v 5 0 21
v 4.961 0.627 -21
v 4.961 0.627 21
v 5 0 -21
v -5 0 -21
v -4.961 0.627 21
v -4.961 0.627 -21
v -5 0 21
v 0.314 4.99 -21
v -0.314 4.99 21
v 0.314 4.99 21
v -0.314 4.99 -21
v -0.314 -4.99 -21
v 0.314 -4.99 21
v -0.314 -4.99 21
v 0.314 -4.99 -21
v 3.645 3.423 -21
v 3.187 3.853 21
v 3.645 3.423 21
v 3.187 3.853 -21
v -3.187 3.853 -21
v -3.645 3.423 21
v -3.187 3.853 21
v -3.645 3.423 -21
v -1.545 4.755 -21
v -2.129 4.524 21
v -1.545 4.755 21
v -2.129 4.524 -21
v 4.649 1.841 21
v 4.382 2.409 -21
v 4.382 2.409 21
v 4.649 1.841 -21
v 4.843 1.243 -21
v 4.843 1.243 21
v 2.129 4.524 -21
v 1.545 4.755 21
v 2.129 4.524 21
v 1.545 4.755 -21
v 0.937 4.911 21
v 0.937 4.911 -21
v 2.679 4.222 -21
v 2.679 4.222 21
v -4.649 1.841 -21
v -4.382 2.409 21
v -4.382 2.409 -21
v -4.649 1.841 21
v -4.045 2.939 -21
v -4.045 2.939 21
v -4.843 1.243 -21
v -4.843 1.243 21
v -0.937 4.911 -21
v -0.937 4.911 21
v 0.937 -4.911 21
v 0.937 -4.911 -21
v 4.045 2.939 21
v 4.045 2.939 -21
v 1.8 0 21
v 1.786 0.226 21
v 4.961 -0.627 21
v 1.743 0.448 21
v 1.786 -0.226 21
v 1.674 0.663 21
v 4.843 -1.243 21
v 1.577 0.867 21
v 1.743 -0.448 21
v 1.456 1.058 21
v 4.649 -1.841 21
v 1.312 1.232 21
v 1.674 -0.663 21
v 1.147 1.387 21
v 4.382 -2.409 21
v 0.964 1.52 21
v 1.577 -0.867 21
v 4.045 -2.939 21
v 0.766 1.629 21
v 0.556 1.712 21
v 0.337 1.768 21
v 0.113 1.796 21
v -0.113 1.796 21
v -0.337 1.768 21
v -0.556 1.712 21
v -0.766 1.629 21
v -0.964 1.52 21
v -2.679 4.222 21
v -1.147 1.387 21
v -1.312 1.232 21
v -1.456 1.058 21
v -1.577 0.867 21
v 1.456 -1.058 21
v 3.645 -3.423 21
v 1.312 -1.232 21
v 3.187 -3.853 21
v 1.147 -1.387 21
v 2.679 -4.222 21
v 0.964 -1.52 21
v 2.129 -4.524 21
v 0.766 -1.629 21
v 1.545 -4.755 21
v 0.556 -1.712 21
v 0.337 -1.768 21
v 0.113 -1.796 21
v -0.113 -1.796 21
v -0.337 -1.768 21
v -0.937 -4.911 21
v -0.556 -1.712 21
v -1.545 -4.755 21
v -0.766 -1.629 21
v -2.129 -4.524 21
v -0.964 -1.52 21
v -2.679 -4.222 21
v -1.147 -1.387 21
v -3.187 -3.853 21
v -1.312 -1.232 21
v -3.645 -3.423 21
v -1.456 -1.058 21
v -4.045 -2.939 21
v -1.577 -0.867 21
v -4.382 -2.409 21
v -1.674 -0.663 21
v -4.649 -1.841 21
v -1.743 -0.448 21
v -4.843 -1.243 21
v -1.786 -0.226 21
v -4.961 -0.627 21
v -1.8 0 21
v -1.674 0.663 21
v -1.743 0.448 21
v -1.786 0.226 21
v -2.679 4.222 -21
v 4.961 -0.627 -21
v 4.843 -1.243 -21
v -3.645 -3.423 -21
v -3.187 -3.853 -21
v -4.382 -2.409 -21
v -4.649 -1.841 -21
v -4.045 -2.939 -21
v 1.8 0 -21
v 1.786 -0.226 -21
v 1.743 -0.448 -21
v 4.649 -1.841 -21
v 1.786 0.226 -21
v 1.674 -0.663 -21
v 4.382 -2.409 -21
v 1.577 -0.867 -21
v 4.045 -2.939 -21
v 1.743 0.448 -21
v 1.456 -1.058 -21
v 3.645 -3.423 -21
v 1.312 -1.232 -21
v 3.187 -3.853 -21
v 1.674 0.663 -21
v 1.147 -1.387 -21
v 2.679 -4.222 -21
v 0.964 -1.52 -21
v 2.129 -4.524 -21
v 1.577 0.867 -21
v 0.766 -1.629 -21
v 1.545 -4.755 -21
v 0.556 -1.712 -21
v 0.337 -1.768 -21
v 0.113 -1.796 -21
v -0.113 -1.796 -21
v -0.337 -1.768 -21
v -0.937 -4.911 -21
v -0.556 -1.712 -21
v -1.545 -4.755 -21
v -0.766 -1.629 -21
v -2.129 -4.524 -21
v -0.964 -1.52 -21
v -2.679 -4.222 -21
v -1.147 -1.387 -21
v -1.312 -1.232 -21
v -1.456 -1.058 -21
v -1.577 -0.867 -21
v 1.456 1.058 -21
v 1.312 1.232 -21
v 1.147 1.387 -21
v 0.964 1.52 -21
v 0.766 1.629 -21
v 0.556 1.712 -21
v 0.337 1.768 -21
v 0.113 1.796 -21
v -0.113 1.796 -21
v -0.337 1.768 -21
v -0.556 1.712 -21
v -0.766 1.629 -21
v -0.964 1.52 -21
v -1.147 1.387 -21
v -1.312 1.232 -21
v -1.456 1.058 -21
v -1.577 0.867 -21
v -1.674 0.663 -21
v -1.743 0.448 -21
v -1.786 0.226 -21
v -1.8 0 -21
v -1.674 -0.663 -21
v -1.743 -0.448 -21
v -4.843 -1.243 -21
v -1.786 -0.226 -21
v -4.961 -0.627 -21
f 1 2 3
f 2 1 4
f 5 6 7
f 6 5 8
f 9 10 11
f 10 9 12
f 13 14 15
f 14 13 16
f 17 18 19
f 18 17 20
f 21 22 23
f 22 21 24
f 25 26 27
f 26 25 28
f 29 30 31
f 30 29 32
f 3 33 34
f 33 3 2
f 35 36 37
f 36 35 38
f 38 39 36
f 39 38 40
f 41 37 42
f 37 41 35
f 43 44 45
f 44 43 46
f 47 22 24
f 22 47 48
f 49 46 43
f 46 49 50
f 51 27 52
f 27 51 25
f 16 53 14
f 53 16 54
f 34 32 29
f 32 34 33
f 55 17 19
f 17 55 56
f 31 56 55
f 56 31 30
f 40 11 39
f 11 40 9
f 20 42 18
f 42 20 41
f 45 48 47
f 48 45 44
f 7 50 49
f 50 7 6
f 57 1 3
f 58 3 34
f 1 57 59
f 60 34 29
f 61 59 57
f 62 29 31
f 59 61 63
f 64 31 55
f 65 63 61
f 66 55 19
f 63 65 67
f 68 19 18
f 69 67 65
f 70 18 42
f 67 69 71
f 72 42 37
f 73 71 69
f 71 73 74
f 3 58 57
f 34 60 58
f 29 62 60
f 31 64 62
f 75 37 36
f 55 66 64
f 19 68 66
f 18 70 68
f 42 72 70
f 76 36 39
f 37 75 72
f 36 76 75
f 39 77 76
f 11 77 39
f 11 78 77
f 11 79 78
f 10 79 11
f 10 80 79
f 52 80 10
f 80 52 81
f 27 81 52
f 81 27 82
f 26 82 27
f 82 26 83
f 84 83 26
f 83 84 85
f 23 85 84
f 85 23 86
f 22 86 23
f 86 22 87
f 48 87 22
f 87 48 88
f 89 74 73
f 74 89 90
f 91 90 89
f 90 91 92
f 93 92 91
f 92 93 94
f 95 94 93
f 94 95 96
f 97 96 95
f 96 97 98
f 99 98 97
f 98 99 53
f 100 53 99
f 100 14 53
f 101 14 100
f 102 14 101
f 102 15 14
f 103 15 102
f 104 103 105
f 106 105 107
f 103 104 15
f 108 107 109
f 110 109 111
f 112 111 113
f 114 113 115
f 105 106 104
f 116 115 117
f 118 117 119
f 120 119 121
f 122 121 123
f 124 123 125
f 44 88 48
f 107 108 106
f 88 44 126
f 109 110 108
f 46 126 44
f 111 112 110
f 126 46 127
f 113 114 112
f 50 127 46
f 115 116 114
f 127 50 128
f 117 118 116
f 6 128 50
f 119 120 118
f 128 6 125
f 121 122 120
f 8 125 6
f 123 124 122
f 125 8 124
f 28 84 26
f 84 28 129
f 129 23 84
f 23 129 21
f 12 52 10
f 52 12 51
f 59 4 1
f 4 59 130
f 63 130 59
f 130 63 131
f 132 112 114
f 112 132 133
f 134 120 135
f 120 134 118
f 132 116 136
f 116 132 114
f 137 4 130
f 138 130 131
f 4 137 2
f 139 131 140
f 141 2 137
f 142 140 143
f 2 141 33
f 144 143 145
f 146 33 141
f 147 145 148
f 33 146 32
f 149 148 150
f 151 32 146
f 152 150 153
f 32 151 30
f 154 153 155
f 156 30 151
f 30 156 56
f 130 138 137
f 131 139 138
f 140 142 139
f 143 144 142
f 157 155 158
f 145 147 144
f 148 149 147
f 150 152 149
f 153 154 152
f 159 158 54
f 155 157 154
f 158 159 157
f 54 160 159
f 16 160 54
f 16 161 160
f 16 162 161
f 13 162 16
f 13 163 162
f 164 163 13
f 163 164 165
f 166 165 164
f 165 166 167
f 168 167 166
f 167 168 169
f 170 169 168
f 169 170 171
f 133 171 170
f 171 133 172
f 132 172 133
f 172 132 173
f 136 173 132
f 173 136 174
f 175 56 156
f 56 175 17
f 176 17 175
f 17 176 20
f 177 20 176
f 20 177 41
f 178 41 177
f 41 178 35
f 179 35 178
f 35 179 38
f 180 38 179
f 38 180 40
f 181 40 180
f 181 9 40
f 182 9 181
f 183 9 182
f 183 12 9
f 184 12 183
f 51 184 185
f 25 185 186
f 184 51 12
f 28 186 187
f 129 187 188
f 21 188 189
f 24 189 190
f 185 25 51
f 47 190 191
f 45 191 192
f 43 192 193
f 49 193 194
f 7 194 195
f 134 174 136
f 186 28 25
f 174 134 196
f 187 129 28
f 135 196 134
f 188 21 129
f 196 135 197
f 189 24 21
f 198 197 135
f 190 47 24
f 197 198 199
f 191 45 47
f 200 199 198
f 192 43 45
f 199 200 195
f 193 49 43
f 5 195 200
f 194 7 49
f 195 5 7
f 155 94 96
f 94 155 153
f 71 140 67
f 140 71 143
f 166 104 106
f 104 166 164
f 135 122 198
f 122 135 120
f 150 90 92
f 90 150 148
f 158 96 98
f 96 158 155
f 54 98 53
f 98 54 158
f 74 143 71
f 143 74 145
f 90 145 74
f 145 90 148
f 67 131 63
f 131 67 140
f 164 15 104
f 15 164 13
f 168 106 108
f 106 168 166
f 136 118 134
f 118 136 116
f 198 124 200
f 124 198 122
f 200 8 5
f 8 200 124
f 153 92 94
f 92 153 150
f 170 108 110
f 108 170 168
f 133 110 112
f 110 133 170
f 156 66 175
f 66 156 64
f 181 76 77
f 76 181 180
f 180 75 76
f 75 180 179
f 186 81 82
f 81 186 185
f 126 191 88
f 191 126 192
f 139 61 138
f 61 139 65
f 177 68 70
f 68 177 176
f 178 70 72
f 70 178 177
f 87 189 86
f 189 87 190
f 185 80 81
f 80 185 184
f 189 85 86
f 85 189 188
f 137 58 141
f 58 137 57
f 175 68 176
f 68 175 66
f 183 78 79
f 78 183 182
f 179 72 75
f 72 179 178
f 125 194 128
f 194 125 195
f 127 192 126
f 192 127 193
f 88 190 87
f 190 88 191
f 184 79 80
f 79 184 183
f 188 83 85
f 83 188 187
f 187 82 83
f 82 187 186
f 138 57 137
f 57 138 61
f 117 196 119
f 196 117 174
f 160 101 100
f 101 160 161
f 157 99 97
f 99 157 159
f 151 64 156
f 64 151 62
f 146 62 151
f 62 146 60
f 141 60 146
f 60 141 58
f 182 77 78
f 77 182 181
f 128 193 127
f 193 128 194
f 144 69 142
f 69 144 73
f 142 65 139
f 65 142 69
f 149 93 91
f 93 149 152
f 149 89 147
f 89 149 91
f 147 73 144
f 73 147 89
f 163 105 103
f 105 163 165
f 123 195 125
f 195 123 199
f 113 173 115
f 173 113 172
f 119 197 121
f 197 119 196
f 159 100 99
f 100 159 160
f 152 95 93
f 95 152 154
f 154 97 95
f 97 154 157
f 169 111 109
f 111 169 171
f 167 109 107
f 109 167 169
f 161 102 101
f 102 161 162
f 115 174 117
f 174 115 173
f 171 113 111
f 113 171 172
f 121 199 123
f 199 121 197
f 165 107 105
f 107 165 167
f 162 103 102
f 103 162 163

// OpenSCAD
$fn = 50;


difference() {
	union() {
		translate(v = [0, 0, -21.0000000000]) {
			cylinder(h = 42, r = 5.0000000000);
		}
	}
	union() {
		translate(v = [0, 0, -100.0000000000]) {
			cylinder(h = 200, r = 1.8000000000);
		}
	}
}
